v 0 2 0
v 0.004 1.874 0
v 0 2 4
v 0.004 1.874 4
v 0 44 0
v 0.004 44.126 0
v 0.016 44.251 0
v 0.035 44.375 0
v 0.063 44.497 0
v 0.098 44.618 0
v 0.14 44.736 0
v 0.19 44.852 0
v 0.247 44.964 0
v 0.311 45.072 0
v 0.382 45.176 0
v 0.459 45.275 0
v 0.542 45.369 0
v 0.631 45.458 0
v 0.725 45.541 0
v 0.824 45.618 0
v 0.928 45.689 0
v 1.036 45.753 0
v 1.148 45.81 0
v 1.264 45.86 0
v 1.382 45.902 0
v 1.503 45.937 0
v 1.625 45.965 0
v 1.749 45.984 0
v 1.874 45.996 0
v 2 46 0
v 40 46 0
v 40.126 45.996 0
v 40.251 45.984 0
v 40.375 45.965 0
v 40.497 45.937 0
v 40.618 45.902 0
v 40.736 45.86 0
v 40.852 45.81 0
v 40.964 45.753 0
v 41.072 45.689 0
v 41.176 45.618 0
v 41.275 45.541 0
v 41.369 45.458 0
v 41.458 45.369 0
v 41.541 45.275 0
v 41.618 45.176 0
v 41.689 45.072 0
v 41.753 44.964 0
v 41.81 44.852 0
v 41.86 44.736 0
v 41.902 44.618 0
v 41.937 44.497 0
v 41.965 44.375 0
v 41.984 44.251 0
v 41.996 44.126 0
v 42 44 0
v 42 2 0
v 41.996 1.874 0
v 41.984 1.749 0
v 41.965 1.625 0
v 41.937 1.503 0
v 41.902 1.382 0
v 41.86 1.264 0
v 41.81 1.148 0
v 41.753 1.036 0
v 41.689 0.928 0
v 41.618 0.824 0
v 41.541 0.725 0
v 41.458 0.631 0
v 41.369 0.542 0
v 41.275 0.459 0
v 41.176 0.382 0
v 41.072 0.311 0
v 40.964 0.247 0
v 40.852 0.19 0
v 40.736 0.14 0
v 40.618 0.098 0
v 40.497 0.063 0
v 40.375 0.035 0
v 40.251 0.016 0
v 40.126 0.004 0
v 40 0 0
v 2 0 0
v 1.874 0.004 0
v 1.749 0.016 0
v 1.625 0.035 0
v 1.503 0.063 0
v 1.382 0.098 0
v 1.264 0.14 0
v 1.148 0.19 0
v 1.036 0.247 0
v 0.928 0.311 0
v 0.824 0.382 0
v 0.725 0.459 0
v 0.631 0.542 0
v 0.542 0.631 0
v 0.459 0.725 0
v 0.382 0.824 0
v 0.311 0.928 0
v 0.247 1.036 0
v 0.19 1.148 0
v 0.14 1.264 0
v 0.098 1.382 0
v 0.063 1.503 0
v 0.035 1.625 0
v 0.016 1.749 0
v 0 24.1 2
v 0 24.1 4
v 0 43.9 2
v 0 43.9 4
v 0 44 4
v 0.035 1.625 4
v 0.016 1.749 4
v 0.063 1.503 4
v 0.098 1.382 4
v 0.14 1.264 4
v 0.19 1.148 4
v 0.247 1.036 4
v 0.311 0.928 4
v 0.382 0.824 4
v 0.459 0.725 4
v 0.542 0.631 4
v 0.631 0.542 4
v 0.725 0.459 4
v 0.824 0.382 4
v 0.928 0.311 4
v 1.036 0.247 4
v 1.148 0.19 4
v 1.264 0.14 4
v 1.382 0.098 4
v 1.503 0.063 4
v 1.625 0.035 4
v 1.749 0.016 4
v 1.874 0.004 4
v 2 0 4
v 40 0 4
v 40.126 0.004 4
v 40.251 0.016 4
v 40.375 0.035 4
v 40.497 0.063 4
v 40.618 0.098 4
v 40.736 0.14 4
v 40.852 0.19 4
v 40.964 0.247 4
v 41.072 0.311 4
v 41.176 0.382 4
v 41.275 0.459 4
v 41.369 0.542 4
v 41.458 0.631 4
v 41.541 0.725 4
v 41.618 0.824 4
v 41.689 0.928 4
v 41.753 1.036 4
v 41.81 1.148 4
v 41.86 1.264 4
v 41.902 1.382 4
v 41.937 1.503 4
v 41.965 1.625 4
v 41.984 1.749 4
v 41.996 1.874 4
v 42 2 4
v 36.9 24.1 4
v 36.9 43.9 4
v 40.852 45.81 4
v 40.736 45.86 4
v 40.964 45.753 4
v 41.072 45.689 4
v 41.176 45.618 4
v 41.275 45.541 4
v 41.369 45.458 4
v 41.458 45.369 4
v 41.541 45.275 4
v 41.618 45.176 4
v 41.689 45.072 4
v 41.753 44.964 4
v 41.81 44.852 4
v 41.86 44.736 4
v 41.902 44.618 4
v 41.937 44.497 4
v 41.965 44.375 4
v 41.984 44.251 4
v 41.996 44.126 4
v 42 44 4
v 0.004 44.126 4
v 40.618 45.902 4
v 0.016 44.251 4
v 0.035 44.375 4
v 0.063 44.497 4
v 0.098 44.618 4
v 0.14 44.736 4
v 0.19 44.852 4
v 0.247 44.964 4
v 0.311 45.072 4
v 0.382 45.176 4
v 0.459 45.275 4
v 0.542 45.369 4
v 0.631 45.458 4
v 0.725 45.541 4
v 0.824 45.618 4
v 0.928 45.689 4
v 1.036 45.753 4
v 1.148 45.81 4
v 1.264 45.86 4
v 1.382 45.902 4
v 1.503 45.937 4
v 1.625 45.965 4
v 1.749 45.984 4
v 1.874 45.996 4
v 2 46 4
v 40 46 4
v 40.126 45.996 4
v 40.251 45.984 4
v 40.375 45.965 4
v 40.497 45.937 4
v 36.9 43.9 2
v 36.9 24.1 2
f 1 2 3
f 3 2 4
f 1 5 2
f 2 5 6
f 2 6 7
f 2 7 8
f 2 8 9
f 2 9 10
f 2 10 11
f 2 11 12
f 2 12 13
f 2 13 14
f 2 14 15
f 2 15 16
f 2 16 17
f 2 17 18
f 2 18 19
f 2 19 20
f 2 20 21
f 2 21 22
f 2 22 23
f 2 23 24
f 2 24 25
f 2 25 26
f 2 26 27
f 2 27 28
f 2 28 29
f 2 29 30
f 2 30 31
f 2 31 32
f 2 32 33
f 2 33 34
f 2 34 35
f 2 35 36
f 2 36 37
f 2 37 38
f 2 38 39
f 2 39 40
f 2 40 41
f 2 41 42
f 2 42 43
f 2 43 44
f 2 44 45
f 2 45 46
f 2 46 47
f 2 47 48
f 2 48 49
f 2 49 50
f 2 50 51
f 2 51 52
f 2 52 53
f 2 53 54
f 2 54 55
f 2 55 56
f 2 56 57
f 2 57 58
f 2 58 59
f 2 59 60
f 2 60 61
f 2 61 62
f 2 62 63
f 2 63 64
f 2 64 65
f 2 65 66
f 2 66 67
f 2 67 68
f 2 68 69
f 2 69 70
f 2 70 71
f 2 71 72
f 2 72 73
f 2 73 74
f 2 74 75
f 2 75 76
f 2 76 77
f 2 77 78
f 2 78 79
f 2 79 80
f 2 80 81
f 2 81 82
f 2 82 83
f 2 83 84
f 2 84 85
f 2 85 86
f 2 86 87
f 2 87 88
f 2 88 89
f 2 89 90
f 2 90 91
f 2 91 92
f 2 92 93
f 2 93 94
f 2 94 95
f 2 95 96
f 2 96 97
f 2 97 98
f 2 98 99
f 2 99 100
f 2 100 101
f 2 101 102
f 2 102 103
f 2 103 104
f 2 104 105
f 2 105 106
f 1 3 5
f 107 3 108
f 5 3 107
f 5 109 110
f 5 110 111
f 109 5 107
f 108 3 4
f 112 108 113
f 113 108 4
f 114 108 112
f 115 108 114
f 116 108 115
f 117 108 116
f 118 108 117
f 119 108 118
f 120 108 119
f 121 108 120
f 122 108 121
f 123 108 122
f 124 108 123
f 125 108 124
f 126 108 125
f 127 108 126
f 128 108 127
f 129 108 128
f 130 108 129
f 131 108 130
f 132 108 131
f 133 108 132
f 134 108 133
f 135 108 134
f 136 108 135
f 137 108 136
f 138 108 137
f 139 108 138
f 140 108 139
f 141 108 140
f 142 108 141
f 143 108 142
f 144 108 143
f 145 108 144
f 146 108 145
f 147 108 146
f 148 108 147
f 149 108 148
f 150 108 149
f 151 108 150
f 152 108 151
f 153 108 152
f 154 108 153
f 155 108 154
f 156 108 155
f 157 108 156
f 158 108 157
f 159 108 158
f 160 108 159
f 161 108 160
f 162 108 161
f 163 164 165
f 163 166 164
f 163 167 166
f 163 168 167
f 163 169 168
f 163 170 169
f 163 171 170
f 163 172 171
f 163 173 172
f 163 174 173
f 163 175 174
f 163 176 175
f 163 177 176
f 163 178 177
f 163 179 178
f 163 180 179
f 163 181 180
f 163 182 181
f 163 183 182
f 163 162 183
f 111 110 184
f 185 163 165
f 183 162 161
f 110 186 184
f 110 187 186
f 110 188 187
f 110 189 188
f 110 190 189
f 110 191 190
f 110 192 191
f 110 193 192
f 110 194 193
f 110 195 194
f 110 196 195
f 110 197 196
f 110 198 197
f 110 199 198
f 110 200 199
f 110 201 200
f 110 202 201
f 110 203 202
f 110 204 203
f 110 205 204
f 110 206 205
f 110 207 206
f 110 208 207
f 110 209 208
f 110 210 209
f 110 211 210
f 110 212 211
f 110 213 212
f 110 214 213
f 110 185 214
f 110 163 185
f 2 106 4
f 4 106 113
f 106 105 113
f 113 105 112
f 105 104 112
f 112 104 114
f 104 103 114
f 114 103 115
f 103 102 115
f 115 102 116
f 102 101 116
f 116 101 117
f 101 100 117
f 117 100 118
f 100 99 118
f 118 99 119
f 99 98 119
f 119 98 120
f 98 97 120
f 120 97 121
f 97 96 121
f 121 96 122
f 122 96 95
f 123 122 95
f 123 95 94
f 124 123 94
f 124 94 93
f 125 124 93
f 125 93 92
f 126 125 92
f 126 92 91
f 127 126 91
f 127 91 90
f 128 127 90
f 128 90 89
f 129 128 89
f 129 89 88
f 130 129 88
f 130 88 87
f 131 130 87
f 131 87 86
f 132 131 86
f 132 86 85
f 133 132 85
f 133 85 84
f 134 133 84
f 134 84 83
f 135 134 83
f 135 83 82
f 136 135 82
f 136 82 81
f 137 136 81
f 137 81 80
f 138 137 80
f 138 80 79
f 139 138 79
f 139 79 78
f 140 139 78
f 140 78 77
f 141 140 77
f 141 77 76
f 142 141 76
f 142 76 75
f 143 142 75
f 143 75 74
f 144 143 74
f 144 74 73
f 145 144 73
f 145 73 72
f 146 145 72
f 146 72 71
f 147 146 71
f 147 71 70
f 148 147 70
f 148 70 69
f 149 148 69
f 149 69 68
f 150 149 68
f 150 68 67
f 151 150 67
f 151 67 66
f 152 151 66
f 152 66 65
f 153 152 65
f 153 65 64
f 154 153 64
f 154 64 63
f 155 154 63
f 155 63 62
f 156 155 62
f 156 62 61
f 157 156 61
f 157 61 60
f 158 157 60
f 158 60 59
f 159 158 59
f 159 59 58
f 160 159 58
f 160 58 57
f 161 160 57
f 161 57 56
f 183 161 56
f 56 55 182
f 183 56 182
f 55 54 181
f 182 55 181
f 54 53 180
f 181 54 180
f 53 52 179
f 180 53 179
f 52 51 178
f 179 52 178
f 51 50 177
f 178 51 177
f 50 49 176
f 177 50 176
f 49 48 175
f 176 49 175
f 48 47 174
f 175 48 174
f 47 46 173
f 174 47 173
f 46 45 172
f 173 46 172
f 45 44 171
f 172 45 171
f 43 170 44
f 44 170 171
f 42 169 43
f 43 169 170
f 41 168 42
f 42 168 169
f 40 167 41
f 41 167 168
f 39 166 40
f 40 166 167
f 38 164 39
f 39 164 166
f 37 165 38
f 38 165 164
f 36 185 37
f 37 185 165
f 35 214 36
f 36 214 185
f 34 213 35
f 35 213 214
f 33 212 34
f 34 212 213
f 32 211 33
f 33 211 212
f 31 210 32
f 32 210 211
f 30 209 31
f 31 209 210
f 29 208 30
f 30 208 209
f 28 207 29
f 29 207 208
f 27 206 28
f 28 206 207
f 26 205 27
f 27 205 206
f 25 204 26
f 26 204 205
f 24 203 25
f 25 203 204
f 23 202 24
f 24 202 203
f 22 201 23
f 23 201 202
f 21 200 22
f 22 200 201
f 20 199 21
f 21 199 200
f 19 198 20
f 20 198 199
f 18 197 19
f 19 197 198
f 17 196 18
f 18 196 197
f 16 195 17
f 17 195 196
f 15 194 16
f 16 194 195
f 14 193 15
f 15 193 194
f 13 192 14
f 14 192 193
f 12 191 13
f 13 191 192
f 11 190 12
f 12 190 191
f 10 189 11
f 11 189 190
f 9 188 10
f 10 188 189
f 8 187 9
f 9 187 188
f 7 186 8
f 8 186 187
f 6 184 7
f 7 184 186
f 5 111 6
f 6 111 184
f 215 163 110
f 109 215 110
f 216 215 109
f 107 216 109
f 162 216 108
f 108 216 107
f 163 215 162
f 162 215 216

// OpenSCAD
// file: blinds-refs.scad
wallh=44;
wallw=42;
cornerrad=2;

3dpcomp=0.12;
distfrombottom=wallh-10;
distfromleft=wallw-18;

//fan
fanhb=11.0;
fanhs=9.6;

//arms
armw=36;
armh=20;
armslotthick=3.0;
armslotdepth=2.0;

//adapters
adapterw=32 -0.2; // to slide in fully 
adapterh=16 -0.2 ; //for sliding easier



//wall1 
wall1_thick=8;


//wall2
wall2_thick=6.4;
servobigcircle=11.5+ 3dpcomp; 
servosmallcircle=5.8+ 3dpcomp;
polygonlefth=5.8+ 3dpcomp;
polygonrighth=6+ 3dpcomp;
polygonw=6;
servo9gw=22.8;
servomounth=4 ;		//height of the screw pad for servo
servomountsize=6; //mount is 6mm square
servomountax=distfromleft+servobigcircle/2 +1;
servomountay=distfrombottom - servomountsize/2;
servomountbx=servomountax - servo9gw -servomountsize -1 ;
servomountby=servomountay;

//wall3
wall3_thick=4;
wall3slotw=adapterw;
wall3sloth=adapterh+ 2+2;
wall3slotd=2;

//base-frame
baseextra=2; 			// edge of base more than the wall widths
base_thick=6;

gap1=30;
gap2=26 + 2; 				//v.2 made this gap 26 +2 for buffer i.e extra thick adapter 
slotw=wallw+3dpcomp+.08;
slot1=wall1_thick+3dpcomp;
slot2=wall2_thick+3dpcomp;
slot3=wall3_thick + 3dpcomp;
sloth=4;
framew=slotw+baseextra;
frameh=slot1+slot2+slot3+gap1+gap2+baseextra;
// main file
$fn=100;

include <blinds-refs.scad>;







slotwall();



module slotwall() {

 difference() {
  
   linear_extrude(height=wall3_thick)
   wall();

	translate([0,0,wall3_thick-wall3slotd])
   linear_extrude( height=wall3slotd)
   slot();

	translate([0,0,wall3_thick-wall3slotd])
  linear_extrude( height=wall3slotd)
   wideslot();
	
 }

}

module wall() {

wallh=wallh+2; // wall3 height is more to fit the slot
 minkowski(){

polygon( [ [cornerrad,cornerrad],[wallw-cornerrad,cornerrad],[wallw-cornerrad,wallh-cornerrad],[cornerrad,wallh-cornerrad] ] , [   [0,1,2,3] ]);
 
	circle(r=cornerrad);
}

}

module slot() {
   color ( "blue") 
	translate([(wallw-wall3slotw)/2 ,distfrombottom - wall3sloth/2,0  ])
   polygon( [ [0,0],[wall3slotw,0],[wall3slotw,wall3sloth],[0,wall3sloth] ] , [   [0,1,2,3] ]);
}

module wideslot() {
   color ( "blue") 
	translate([0 ,distfrombottom - wall3sloth/2,0  ])
   polygon( [ [0,0],[wall3slotw,0],[wall3slotw,wall3sloth],[0,wall3sloth] ] , [   [0,1,2,3] ]);
}
